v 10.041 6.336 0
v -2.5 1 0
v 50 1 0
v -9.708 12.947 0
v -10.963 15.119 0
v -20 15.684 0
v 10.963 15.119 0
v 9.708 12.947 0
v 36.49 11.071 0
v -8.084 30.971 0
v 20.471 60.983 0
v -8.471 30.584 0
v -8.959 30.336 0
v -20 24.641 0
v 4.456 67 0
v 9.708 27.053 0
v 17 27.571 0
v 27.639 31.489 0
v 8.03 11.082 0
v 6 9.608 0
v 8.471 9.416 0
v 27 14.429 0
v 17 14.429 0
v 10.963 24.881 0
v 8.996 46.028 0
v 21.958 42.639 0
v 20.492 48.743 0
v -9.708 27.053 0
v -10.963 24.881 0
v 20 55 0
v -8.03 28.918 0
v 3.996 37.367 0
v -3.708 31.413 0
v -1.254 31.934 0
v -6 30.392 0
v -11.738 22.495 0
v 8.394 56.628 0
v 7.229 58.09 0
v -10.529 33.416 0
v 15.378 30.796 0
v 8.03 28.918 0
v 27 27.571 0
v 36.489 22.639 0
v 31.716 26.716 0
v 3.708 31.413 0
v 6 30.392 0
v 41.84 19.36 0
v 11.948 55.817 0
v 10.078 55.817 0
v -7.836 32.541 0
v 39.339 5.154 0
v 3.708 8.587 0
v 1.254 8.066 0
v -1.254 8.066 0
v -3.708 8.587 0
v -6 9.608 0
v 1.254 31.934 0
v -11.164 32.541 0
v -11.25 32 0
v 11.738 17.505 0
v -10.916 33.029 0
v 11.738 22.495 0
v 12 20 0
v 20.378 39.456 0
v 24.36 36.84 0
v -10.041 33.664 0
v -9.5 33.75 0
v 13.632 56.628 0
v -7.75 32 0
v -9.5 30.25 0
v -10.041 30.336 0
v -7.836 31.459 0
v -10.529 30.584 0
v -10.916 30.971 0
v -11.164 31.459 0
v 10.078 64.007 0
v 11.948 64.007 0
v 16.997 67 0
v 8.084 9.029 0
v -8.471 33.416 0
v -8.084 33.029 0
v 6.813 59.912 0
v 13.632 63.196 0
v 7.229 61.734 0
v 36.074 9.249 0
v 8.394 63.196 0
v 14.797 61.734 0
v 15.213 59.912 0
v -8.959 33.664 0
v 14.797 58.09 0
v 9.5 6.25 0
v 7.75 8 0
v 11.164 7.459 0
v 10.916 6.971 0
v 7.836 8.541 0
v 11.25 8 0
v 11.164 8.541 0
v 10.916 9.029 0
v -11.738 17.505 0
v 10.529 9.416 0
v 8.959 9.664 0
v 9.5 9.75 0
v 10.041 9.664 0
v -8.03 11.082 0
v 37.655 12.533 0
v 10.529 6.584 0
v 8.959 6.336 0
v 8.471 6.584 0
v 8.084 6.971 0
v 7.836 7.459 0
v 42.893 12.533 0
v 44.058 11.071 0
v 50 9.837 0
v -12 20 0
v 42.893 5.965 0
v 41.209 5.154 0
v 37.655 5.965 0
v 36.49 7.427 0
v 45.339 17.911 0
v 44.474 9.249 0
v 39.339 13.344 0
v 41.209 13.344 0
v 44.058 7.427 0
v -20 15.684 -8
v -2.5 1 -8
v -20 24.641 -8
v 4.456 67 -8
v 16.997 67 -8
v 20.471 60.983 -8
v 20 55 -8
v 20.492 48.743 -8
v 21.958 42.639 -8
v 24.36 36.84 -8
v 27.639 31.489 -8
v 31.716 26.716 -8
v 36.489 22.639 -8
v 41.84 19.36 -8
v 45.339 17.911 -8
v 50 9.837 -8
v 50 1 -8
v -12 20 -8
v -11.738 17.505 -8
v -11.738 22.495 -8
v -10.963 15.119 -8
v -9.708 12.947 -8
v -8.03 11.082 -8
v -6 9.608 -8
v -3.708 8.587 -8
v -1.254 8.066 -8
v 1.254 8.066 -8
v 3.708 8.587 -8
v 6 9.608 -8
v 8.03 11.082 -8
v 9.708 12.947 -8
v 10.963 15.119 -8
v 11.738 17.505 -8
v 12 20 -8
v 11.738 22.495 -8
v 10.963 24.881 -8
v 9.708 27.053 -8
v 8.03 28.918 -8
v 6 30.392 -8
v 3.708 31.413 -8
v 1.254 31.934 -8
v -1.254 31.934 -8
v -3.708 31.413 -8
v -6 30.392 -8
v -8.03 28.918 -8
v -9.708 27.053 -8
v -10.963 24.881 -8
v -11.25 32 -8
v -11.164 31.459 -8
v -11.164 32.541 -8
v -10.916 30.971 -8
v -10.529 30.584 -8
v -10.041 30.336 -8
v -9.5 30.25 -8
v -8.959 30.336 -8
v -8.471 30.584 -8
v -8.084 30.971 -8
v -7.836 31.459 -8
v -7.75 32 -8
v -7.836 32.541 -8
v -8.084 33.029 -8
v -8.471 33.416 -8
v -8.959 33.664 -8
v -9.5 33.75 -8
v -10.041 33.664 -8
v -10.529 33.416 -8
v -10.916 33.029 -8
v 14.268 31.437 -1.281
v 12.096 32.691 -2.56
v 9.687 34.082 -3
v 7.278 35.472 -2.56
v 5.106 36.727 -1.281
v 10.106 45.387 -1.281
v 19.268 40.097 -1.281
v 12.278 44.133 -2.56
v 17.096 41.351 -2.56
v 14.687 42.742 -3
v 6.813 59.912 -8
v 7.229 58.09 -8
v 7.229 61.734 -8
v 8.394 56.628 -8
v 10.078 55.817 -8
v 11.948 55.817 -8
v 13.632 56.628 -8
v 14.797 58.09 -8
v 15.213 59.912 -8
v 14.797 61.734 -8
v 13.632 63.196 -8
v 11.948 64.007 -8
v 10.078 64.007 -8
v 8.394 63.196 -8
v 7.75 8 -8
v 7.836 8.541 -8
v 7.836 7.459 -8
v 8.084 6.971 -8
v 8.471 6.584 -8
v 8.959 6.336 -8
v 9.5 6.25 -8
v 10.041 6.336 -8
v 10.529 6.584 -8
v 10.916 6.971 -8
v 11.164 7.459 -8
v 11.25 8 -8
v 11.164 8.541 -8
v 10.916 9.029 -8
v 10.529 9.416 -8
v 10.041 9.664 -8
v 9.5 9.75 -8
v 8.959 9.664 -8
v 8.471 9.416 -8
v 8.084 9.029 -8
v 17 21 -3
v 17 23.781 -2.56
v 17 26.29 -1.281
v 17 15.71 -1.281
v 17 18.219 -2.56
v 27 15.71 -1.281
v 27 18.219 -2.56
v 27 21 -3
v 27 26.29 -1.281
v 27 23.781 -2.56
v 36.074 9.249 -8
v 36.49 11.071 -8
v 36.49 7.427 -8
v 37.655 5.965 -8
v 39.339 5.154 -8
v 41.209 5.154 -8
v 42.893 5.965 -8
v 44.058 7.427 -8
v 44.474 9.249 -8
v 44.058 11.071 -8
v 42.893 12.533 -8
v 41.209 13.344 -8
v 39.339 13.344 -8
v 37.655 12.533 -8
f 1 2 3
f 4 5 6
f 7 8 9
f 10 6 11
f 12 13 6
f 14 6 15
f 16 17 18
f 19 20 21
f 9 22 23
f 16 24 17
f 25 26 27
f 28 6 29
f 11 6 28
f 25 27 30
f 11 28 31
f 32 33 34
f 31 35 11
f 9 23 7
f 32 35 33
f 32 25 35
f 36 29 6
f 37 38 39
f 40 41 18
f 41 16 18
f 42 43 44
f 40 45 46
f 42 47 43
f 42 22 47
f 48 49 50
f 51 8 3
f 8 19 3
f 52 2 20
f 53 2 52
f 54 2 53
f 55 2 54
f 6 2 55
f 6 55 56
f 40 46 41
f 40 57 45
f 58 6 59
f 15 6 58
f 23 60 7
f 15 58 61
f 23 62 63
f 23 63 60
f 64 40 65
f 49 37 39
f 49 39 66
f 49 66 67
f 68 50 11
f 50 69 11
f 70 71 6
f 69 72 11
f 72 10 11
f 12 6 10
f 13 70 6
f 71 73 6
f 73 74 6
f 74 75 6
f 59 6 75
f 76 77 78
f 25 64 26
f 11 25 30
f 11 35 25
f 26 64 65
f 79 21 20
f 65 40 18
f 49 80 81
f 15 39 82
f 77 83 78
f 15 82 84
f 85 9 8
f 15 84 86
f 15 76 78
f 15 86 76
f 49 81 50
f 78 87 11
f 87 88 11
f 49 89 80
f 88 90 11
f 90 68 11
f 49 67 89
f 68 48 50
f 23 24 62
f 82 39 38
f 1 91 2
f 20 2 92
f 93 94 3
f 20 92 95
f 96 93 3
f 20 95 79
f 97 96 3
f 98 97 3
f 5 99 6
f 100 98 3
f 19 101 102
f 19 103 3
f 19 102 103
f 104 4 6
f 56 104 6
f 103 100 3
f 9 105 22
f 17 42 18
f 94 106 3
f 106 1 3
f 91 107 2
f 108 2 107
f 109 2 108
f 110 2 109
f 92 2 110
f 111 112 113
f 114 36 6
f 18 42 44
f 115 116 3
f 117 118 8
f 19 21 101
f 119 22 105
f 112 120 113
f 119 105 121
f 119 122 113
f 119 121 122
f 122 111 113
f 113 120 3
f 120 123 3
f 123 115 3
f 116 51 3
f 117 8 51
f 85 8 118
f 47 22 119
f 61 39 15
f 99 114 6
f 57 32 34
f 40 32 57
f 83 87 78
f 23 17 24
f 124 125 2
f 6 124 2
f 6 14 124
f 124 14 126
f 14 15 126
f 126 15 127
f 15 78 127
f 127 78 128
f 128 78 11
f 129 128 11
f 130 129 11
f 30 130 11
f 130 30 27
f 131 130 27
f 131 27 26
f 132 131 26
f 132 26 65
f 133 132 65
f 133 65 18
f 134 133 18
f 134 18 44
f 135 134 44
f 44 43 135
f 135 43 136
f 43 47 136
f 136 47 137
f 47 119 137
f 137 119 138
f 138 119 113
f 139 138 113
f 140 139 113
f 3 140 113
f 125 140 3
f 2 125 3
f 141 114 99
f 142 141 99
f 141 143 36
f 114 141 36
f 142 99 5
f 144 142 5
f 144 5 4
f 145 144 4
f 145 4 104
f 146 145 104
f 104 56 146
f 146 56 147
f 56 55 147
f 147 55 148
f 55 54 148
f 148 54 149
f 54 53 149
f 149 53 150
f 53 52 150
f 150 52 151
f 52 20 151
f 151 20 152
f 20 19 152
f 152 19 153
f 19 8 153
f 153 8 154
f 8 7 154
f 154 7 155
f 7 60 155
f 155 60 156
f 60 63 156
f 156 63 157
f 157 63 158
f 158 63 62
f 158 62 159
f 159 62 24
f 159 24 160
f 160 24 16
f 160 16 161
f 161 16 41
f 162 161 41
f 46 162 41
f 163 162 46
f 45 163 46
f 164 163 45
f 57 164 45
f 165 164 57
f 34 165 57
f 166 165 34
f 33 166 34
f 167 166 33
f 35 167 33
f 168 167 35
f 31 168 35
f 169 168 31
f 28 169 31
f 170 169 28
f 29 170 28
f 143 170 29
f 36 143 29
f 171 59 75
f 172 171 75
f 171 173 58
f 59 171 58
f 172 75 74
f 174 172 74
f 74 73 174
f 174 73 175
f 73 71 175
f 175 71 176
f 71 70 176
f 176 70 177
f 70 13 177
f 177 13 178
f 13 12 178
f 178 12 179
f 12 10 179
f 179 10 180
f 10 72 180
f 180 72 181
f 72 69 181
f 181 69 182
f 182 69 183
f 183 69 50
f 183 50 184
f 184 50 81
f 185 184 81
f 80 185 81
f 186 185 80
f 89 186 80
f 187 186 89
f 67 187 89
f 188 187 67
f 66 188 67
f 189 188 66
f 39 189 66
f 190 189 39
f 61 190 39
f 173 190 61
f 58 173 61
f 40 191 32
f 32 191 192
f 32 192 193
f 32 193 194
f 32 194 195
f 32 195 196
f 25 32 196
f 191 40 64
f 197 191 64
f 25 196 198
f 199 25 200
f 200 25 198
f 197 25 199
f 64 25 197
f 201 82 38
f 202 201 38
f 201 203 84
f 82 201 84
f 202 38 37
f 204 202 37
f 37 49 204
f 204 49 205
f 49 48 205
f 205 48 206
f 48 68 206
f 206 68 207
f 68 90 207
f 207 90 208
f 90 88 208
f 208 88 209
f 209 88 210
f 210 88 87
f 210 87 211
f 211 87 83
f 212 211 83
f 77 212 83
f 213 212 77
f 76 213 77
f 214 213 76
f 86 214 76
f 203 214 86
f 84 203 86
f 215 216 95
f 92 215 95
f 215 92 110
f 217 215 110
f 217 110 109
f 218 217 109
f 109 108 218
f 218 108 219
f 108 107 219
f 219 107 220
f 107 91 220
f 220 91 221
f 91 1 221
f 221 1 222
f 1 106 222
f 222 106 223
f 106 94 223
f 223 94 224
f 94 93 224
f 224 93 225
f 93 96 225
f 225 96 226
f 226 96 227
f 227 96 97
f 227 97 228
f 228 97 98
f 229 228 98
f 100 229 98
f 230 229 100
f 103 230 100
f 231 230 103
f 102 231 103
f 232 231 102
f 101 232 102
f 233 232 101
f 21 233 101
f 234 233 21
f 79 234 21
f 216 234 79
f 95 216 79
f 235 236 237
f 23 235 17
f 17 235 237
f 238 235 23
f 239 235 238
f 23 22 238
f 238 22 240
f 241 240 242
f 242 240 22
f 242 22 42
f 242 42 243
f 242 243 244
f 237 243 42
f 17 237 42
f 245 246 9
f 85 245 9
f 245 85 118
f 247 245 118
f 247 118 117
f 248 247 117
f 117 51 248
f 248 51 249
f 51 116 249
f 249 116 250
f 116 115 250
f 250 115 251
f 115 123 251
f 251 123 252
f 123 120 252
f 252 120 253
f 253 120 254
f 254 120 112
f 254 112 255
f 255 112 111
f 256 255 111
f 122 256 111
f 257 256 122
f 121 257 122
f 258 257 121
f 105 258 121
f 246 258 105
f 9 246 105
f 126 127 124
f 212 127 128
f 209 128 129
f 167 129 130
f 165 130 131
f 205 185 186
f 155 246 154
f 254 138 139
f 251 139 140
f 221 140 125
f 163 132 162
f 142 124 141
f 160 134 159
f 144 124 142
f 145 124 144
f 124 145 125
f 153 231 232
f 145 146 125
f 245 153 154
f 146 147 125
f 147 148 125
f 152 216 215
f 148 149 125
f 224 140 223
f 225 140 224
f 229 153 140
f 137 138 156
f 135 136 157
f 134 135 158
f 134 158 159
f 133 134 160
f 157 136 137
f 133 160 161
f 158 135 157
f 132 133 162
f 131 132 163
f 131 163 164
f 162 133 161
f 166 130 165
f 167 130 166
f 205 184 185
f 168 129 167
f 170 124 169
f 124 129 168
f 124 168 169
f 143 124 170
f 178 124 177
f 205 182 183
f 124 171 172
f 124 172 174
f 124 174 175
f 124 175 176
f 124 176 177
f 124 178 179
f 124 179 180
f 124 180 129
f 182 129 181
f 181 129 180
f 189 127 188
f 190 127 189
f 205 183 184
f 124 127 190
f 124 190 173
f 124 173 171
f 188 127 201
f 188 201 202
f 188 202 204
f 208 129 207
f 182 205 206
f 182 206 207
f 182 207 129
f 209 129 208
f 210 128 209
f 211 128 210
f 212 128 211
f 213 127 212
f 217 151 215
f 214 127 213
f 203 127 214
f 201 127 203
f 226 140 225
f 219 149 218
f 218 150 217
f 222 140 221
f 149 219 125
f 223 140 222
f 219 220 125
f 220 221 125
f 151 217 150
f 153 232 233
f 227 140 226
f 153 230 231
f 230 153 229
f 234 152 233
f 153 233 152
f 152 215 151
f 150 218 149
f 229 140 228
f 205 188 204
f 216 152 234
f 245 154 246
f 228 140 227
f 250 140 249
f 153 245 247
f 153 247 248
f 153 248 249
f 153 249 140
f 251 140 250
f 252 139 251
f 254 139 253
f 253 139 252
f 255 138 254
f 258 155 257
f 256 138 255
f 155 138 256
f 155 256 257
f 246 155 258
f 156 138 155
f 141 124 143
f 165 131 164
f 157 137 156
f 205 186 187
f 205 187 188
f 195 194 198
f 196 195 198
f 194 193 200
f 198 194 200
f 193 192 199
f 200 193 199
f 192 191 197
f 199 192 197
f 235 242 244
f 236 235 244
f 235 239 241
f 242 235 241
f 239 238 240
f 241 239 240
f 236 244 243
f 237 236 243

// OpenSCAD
// file: functions.scad
// PRUSA Mendel  
// Functions used in many files
// GNU GPL v3
// Josef Průša
// josefprusa@me.com
// prusadjs.cz
// http://www.reprap.org/wiki/Prusa_Mendel
// http://github.com/prusajr/PrusaMendel


module nut(d,h,horizontal=true){
cornerdiameter =  (d / 2) / cos (180 / 6);
cylinder(h = h, r = cornerdiameter, $fn = 6);
if(horizontal){
for(i = [1:6]){
	rotate([0,0,60*i]) translate([-cornerdiameter-0.2,0,0]) rotate([0,0,-45]) cube(size = [2,2,h]);
}}
}

// Based on nophead research
module polyhole(d,h) {
    n = max(round(2 * d),3);
    rotate([0,0,180])
        cylinder(h = h, r = (d / 2) / cos (180 / n), $fn = n);
}




module roundcorner(diameter){
	difference(){
		cube(size = [diameter,diameter,99], center = false);
		translate(v = [diameter, diameter, 0]) cylinder(h = 100, r=diameter, center=false,$fn = max(3*diameter,20));
	}
}
// file: configuration.scad
// PRUSA Mendel  
// Configuration file
// GNU GPL v2
// Josef Pra
// josefprusa@me.com
// prusadjs.cz
// http://www.reprap.org/wiki/Prusa_Mendel
// http://github.com/prusajr/PrusaMendel


// PLEASE SELECT ONE OF THE CONFIGURATIONS BELOW
// BY UN-COMMENTING IT


variant=0; //0 for metric
//variant=1; //1 for SAE
if(variant==0){
echo("variant: metric");
}else if(variant==1){
echo("variant: sae");
} else{
echo("WARNING: INVALID CONFIGURATION");
}




vars=[
//[m8_dia,m8_nut, m4_dia, m4_nut, m3_dia, m3_nut, bush_dia, mot_shaft, bush_rod, bush_outerdia, bush_length, m5_dia, m5_nut]
[8.4, 14.8, 4.3,8.1, 3.3, 6.5, 11, 5.3, 8, 16, 11, 5.3,9.3],//metric - M3 nut was 7; M3 was 4.4
[9,15.7,5.5,10.6,5.5,10.6,11.5,5.3,7.9375,16,11,5.6, 10]//SAE
];


//BUSHING TYPE Can generate three versions
// 1 - regular old ones
// 2 - helical ones
// 3 - holders for brass or any other bought bushings
bushing_type = 2;


//Round corner diameter
round_corner_diameter = 8;


//Thin wall size
layer_height = 0.4;
perimeter_width_over_thicknes = 1.6;
infill_widht_over_thickness = 1.55;
thin_wall = 2*(perimeter_width_over_thicknes*layer_height+infill_widht_over_thickness*layer_height);
if(thin_wall<2){
	echo("Check thin wall size, its below 2mm!");
}
echo(thin_wall);


//DO NOT TOUCH THIS SECTION!
m8_diameter = vars[variant][0];
m8_nut_diameter = vars[variant][1];
m4_diameter = vars[variant][2];
m4_nut_diameter = vars[variant][3];
m3_diameter = vars[variant][4];
m3_nut_diameter = vars[variant][5];
bushing_diameter = vars[variant][6];
motor_shaft=vars[variant][7];
bushing_rodsize = vars[variant][8];
bushing_outerDiameter = vars[variant][9];
bushing_lenght = vars[variant][10];
m5_diameter = vars[variant][11];
m5_nut_diameter = vars[variant][12];



// MINI-HUXLEY VERSION (TODO, just place holder)
// include <configuration-huxley.scad>


// MEGA VERSION (TODO, just place holder)
// include <configuration-mega.scad>

// Gap between the X rods

x_rod_centres=70;
y_rod_centres=183;
belt_width=6;
belt_clamp_centres=18;
ptfe_diameter=4;
z_slot_width=3.5;

vertex_x_rod_1=[11.013,59.912];
vertex_x_rod_2=[40.274,9.249,0];
vertex_x_rod_gap=sqrt((vertex_x_rod_1.x-vertex_x_rod_2.x)*(vertex_x_rod_1.x-vertex_x_rod_2.x) +(vertex_x_rod_1.y-vertex_x_rod_2.y)*(vertex_x_rod_1.y-vertex_x_rod_2.y) );

// Some basic functions, probably should be somewhere else
module roundcorner(diameter){
	difference(){
		cube(size = [diameter,diameter,99], center = false);
		translate(v = [diameter, diameter, 0]) cylinder(h = 100, r=diameter, center=true);
	}
}

include <functions.scad>
// main file
// This attaches to a frame vertex using the M8 rods and gives a holder for an XLR power connector.
// Adrian 12 May 2011

include <configuration.scad>

outer_diameter = m8_diameter/2+3.3;


module xlr_bracket()
{
	mirror([0,0,1])// comment out to mount on the other side
	difference()
	{
		translate([-20, 1, 0])
			cube([70,66,8]);
		
		translate([11.013,59.912]) cylinder(h=30,r=(m8_diameter/2),center=true); 
		translate([40.274,9.249,0]) cylinder(h=30,r=(m8_diameter/2),center=true); 
		
		translate([0, 20, 0])
		{
			cylinder(h=30,r=12,center=true,$fn=30);
			translate([-9.5,12,0])
				cylinder(h=30,r=1.75,center=true,$fn=20);
			translate([9.5,-12,0])
				cylinder(h=30,r=1.75,center=true,$fn=20);
		}
		
		
		
		translate([73, 70, 0])
			rotate([0,0,-60])
				cube([100,100,30], center=true);
		
		translate([-40, 90, 0])
			rotate([0,0,60])
				cube([100,100,30], center=true);
		
		translate([-35, -37, 0])
			rotate([0,0,-40])
				cube([100,100,30], center=true);
		
		translate([60, 55, 0])
			cylinder(r=40,h=30, center=true,$fn=40);
		
		
		translate([22,21,-6])
			rotate([0,90,0])
				cylinder(h=10,r=9,center=true,$fn=20);
		translate([13.687,41.010,-6]) rotate(a=60,v=[0,0,1])
			rotate([0,90,0])
				translate([0,0,-3])
					cylinder(h=10,r=9,center=true,$fn=20);		
	}
}


xlr_bracket();
